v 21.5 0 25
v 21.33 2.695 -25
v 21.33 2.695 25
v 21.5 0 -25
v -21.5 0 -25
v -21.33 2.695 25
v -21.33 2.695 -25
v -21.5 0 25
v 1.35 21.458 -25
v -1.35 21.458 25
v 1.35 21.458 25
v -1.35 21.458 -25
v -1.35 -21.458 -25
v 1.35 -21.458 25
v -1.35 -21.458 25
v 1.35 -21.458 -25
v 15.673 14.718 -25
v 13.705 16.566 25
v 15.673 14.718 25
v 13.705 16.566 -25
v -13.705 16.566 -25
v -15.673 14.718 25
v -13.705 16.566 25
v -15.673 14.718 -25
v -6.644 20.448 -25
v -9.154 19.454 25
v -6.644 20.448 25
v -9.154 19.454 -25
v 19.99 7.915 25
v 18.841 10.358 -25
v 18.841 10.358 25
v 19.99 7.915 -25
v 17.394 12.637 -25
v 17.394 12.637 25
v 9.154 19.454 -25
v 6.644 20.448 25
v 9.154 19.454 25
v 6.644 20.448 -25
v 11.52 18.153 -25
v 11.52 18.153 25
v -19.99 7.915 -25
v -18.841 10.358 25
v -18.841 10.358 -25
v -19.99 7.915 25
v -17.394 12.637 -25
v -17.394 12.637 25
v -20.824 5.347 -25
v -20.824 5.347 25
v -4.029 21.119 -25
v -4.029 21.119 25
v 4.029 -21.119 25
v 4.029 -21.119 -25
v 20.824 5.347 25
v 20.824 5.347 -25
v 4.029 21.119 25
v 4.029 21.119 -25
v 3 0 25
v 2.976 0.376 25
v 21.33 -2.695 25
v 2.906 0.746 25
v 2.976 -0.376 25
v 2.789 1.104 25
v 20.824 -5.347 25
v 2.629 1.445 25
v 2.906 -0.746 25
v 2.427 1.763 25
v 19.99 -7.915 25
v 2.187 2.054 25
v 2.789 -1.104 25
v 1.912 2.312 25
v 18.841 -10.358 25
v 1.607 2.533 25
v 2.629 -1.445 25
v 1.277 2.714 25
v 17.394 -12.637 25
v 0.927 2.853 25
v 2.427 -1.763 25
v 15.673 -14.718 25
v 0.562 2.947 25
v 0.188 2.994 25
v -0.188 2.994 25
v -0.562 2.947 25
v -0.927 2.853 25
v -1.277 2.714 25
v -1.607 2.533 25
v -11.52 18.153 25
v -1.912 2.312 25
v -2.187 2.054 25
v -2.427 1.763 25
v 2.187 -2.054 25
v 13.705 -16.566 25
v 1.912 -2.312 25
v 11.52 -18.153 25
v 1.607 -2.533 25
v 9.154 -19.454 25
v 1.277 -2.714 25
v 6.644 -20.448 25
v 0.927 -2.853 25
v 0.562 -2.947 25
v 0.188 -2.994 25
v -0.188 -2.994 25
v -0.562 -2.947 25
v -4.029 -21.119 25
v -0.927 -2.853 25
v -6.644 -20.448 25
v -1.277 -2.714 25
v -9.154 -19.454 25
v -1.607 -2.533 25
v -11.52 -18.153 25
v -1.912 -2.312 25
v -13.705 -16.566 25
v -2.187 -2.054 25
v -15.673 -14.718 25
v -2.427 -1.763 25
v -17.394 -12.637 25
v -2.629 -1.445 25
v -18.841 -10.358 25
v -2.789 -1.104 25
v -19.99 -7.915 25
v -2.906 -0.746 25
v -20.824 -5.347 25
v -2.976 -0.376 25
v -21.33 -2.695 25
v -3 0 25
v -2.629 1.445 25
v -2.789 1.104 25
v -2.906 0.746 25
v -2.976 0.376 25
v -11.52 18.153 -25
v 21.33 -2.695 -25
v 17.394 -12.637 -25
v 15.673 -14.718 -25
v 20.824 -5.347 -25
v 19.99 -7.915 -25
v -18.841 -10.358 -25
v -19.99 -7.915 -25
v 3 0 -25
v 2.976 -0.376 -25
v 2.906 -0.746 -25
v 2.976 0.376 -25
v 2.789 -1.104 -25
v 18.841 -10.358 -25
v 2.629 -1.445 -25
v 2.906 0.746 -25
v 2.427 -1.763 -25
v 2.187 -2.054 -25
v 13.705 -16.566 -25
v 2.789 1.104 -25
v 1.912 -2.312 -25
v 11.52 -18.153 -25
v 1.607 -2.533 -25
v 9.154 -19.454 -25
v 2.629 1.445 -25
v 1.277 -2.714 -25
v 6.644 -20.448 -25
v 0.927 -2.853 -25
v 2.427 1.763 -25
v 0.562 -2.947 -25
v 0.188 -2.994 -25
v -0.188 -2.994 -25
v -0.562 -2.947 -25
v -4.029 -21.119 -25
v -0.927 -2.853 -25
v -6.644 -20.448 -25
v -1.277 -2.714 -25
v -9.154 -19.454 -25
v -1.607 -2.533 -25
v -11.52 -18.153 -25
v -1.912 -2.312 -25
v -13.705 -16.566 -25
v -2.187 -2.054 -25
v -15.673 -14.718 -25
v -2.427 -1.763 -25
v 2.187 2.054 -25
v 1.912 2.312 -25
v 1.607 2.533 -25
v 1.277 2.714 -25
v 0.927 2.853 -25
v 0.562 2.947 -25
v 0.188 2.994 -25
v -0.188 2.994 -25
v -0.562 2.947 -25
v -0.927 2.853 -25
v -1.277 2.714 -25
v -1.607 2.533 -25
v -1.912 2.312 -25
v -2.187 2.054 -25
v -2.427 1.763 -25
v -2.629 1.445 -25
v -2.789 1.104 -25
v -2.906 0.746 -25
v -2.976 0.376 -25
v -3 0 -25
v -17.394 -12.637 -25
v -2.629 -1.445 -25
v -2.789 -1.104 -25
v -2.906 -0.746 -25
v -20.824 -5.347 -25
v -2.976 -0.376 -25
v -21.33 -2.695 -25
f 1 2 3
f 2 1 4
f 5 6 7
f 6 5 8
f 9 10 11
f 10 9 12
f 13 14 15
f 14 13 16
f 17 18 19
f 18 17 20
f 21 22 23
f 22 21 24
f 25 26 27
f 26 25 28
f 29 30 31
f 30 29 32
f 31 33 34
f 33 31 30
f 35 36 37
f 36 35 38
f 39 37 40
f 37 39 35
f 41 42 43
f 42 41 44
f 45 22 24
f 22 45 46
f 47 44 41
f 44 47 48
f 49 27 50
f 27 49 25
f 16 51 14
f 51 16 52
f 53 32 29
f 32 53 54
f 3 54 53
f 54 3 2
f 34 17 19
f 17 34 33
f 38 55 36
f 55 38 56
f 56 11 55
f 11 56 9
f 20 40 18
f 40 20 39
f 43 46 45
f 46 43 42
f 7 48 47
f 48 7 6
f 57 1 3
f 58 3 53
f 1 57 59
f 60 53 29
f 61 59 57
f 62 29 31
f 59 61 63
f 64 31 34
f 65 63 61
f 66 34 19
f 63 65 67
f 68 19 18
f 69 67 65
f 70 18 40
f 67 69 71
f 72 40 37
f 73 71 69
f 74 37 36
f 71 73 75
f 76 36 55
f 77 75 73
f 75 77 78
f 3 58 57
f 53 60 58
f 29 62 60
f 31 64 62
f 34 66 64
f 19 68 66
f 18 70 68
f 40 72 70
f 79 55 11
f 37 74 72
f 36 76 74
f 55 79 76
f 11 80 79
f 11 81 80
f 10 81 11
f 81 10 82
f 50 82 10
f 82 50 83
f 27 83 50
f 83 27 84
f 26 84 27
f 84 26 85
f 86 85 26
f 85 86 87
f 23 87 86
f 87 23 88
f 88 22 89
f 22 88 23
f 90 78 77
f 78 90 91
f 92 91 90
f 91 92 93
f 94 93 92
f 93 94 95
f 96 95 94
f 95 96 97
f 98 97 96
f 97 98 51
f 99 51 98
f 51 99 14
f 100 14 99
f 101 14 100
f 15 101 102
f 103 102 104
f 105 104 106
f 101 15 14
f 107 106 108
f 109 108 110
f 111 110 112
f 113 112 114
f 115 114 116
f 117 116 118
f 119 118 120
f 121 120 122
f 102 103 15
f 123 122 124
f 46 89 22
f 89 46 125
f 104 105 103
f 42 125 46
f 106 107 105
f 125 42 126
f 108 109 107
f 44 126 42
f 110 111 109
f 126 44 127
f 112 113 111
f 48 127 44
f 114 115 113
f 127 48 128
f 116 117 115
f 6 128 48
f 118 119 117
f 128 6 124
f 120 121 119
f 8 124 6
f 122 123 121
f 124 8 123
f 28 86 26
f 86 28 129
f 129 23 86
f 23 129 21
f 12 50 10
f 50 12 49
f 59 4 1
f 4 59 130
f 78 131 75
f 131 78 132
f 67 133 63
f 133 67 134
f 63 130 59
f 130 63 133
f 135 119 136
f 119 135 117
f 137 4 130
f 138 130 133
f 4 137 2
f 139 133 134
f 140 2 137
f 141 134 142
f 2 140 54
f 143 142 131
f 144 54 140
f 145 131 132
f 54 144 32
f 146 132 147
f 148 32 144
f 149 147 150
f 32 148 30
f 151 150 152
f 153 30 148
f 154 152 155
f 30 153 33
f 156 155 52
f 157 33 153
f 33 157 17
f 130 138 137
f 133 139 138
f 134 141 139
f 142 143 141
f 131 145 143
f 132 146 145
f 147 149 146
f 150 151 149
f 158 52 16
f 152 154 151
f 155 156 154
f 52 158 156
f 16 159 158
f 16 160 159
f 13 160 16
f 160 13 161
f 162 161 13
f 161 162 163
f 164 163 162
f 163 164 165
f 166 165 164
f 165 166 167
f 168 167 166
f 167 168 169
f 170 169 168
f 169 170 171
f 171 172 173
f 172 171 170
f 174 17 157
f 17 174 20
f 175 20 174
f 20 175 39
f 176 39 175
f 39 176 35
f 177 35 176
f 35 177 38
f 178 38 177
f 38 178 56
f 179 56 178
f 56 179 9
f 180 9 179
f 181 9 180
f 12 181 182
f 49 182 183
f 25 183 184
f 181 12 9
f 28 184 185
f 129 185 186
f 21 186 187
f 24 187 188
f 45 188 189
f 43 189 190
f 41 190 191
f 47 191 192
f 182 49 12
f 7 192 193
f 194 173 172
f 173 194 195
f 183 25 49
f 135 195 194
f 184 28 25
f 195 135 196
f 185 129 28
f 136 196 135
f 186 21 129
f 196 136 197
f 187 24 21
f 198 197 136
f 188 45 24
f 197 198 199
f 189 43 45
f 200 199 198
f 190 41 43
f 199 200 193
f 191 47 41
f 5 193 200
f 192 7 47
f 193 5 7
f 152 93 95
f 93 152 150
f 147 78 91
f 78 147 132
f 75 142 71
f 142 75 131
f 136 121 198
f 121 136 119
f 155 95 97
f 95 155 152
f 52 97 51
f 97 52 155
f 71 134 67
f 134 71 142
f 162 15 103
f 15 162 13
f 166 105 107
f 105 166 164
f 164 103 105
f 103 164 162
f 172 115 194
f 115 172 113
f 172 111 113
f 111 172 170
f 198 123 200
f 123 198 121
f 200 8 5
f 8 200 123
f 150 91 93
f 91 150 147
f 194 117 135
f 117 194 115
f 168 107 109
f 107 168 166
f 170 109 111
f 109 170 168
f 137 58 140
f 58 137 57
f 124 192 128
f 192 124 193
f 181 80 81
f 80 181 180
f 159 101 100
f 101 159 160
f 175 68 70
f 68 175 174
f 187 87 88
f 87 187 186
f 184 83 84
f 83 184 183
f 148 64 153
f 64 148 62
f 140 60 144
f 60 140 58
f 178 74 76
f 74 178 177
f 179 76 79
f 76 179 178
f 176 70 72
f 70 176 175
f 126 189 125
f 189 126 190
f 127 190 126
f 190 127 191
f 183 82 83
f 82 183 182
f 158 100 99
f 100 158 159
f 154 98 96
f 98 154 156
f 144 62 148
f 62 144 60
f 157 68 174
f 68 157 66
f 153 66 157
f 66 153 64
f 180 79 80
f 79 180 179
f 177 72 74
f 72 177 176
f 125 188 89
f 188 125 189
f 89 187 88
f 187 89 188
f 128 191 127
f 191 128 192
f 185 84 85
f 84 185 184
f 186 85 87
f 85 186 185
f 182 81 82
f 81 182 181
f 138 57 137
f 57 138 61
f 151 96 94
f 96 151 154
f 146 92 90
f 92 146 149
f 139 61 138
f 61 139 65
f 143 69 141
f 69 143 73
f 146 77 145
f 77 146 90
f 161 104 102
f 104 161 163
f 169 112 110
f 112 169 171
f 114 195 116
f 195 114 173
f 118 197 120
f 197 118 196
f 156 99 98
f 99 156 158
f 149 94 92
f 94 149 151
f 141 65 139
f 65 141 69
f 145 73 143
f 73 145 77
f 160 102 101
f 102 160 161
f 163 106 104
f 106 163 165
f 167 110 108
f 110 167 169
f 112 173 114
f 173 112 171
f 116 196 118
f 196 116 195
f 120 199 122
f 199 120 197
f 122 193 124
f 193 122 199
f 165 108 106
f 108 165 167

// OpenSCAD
$fn = 50;


difference() {
	union() {
		translate(v = [0, 0, -25.0000000000]) {
			cylinder(h = 50, r = 21.5000000000);
		}
	}
	union() {
		translate(v = [0, 0, -100.0000000000]) {
			cylinder(h = 200, r = 3);
		}
	}
}
